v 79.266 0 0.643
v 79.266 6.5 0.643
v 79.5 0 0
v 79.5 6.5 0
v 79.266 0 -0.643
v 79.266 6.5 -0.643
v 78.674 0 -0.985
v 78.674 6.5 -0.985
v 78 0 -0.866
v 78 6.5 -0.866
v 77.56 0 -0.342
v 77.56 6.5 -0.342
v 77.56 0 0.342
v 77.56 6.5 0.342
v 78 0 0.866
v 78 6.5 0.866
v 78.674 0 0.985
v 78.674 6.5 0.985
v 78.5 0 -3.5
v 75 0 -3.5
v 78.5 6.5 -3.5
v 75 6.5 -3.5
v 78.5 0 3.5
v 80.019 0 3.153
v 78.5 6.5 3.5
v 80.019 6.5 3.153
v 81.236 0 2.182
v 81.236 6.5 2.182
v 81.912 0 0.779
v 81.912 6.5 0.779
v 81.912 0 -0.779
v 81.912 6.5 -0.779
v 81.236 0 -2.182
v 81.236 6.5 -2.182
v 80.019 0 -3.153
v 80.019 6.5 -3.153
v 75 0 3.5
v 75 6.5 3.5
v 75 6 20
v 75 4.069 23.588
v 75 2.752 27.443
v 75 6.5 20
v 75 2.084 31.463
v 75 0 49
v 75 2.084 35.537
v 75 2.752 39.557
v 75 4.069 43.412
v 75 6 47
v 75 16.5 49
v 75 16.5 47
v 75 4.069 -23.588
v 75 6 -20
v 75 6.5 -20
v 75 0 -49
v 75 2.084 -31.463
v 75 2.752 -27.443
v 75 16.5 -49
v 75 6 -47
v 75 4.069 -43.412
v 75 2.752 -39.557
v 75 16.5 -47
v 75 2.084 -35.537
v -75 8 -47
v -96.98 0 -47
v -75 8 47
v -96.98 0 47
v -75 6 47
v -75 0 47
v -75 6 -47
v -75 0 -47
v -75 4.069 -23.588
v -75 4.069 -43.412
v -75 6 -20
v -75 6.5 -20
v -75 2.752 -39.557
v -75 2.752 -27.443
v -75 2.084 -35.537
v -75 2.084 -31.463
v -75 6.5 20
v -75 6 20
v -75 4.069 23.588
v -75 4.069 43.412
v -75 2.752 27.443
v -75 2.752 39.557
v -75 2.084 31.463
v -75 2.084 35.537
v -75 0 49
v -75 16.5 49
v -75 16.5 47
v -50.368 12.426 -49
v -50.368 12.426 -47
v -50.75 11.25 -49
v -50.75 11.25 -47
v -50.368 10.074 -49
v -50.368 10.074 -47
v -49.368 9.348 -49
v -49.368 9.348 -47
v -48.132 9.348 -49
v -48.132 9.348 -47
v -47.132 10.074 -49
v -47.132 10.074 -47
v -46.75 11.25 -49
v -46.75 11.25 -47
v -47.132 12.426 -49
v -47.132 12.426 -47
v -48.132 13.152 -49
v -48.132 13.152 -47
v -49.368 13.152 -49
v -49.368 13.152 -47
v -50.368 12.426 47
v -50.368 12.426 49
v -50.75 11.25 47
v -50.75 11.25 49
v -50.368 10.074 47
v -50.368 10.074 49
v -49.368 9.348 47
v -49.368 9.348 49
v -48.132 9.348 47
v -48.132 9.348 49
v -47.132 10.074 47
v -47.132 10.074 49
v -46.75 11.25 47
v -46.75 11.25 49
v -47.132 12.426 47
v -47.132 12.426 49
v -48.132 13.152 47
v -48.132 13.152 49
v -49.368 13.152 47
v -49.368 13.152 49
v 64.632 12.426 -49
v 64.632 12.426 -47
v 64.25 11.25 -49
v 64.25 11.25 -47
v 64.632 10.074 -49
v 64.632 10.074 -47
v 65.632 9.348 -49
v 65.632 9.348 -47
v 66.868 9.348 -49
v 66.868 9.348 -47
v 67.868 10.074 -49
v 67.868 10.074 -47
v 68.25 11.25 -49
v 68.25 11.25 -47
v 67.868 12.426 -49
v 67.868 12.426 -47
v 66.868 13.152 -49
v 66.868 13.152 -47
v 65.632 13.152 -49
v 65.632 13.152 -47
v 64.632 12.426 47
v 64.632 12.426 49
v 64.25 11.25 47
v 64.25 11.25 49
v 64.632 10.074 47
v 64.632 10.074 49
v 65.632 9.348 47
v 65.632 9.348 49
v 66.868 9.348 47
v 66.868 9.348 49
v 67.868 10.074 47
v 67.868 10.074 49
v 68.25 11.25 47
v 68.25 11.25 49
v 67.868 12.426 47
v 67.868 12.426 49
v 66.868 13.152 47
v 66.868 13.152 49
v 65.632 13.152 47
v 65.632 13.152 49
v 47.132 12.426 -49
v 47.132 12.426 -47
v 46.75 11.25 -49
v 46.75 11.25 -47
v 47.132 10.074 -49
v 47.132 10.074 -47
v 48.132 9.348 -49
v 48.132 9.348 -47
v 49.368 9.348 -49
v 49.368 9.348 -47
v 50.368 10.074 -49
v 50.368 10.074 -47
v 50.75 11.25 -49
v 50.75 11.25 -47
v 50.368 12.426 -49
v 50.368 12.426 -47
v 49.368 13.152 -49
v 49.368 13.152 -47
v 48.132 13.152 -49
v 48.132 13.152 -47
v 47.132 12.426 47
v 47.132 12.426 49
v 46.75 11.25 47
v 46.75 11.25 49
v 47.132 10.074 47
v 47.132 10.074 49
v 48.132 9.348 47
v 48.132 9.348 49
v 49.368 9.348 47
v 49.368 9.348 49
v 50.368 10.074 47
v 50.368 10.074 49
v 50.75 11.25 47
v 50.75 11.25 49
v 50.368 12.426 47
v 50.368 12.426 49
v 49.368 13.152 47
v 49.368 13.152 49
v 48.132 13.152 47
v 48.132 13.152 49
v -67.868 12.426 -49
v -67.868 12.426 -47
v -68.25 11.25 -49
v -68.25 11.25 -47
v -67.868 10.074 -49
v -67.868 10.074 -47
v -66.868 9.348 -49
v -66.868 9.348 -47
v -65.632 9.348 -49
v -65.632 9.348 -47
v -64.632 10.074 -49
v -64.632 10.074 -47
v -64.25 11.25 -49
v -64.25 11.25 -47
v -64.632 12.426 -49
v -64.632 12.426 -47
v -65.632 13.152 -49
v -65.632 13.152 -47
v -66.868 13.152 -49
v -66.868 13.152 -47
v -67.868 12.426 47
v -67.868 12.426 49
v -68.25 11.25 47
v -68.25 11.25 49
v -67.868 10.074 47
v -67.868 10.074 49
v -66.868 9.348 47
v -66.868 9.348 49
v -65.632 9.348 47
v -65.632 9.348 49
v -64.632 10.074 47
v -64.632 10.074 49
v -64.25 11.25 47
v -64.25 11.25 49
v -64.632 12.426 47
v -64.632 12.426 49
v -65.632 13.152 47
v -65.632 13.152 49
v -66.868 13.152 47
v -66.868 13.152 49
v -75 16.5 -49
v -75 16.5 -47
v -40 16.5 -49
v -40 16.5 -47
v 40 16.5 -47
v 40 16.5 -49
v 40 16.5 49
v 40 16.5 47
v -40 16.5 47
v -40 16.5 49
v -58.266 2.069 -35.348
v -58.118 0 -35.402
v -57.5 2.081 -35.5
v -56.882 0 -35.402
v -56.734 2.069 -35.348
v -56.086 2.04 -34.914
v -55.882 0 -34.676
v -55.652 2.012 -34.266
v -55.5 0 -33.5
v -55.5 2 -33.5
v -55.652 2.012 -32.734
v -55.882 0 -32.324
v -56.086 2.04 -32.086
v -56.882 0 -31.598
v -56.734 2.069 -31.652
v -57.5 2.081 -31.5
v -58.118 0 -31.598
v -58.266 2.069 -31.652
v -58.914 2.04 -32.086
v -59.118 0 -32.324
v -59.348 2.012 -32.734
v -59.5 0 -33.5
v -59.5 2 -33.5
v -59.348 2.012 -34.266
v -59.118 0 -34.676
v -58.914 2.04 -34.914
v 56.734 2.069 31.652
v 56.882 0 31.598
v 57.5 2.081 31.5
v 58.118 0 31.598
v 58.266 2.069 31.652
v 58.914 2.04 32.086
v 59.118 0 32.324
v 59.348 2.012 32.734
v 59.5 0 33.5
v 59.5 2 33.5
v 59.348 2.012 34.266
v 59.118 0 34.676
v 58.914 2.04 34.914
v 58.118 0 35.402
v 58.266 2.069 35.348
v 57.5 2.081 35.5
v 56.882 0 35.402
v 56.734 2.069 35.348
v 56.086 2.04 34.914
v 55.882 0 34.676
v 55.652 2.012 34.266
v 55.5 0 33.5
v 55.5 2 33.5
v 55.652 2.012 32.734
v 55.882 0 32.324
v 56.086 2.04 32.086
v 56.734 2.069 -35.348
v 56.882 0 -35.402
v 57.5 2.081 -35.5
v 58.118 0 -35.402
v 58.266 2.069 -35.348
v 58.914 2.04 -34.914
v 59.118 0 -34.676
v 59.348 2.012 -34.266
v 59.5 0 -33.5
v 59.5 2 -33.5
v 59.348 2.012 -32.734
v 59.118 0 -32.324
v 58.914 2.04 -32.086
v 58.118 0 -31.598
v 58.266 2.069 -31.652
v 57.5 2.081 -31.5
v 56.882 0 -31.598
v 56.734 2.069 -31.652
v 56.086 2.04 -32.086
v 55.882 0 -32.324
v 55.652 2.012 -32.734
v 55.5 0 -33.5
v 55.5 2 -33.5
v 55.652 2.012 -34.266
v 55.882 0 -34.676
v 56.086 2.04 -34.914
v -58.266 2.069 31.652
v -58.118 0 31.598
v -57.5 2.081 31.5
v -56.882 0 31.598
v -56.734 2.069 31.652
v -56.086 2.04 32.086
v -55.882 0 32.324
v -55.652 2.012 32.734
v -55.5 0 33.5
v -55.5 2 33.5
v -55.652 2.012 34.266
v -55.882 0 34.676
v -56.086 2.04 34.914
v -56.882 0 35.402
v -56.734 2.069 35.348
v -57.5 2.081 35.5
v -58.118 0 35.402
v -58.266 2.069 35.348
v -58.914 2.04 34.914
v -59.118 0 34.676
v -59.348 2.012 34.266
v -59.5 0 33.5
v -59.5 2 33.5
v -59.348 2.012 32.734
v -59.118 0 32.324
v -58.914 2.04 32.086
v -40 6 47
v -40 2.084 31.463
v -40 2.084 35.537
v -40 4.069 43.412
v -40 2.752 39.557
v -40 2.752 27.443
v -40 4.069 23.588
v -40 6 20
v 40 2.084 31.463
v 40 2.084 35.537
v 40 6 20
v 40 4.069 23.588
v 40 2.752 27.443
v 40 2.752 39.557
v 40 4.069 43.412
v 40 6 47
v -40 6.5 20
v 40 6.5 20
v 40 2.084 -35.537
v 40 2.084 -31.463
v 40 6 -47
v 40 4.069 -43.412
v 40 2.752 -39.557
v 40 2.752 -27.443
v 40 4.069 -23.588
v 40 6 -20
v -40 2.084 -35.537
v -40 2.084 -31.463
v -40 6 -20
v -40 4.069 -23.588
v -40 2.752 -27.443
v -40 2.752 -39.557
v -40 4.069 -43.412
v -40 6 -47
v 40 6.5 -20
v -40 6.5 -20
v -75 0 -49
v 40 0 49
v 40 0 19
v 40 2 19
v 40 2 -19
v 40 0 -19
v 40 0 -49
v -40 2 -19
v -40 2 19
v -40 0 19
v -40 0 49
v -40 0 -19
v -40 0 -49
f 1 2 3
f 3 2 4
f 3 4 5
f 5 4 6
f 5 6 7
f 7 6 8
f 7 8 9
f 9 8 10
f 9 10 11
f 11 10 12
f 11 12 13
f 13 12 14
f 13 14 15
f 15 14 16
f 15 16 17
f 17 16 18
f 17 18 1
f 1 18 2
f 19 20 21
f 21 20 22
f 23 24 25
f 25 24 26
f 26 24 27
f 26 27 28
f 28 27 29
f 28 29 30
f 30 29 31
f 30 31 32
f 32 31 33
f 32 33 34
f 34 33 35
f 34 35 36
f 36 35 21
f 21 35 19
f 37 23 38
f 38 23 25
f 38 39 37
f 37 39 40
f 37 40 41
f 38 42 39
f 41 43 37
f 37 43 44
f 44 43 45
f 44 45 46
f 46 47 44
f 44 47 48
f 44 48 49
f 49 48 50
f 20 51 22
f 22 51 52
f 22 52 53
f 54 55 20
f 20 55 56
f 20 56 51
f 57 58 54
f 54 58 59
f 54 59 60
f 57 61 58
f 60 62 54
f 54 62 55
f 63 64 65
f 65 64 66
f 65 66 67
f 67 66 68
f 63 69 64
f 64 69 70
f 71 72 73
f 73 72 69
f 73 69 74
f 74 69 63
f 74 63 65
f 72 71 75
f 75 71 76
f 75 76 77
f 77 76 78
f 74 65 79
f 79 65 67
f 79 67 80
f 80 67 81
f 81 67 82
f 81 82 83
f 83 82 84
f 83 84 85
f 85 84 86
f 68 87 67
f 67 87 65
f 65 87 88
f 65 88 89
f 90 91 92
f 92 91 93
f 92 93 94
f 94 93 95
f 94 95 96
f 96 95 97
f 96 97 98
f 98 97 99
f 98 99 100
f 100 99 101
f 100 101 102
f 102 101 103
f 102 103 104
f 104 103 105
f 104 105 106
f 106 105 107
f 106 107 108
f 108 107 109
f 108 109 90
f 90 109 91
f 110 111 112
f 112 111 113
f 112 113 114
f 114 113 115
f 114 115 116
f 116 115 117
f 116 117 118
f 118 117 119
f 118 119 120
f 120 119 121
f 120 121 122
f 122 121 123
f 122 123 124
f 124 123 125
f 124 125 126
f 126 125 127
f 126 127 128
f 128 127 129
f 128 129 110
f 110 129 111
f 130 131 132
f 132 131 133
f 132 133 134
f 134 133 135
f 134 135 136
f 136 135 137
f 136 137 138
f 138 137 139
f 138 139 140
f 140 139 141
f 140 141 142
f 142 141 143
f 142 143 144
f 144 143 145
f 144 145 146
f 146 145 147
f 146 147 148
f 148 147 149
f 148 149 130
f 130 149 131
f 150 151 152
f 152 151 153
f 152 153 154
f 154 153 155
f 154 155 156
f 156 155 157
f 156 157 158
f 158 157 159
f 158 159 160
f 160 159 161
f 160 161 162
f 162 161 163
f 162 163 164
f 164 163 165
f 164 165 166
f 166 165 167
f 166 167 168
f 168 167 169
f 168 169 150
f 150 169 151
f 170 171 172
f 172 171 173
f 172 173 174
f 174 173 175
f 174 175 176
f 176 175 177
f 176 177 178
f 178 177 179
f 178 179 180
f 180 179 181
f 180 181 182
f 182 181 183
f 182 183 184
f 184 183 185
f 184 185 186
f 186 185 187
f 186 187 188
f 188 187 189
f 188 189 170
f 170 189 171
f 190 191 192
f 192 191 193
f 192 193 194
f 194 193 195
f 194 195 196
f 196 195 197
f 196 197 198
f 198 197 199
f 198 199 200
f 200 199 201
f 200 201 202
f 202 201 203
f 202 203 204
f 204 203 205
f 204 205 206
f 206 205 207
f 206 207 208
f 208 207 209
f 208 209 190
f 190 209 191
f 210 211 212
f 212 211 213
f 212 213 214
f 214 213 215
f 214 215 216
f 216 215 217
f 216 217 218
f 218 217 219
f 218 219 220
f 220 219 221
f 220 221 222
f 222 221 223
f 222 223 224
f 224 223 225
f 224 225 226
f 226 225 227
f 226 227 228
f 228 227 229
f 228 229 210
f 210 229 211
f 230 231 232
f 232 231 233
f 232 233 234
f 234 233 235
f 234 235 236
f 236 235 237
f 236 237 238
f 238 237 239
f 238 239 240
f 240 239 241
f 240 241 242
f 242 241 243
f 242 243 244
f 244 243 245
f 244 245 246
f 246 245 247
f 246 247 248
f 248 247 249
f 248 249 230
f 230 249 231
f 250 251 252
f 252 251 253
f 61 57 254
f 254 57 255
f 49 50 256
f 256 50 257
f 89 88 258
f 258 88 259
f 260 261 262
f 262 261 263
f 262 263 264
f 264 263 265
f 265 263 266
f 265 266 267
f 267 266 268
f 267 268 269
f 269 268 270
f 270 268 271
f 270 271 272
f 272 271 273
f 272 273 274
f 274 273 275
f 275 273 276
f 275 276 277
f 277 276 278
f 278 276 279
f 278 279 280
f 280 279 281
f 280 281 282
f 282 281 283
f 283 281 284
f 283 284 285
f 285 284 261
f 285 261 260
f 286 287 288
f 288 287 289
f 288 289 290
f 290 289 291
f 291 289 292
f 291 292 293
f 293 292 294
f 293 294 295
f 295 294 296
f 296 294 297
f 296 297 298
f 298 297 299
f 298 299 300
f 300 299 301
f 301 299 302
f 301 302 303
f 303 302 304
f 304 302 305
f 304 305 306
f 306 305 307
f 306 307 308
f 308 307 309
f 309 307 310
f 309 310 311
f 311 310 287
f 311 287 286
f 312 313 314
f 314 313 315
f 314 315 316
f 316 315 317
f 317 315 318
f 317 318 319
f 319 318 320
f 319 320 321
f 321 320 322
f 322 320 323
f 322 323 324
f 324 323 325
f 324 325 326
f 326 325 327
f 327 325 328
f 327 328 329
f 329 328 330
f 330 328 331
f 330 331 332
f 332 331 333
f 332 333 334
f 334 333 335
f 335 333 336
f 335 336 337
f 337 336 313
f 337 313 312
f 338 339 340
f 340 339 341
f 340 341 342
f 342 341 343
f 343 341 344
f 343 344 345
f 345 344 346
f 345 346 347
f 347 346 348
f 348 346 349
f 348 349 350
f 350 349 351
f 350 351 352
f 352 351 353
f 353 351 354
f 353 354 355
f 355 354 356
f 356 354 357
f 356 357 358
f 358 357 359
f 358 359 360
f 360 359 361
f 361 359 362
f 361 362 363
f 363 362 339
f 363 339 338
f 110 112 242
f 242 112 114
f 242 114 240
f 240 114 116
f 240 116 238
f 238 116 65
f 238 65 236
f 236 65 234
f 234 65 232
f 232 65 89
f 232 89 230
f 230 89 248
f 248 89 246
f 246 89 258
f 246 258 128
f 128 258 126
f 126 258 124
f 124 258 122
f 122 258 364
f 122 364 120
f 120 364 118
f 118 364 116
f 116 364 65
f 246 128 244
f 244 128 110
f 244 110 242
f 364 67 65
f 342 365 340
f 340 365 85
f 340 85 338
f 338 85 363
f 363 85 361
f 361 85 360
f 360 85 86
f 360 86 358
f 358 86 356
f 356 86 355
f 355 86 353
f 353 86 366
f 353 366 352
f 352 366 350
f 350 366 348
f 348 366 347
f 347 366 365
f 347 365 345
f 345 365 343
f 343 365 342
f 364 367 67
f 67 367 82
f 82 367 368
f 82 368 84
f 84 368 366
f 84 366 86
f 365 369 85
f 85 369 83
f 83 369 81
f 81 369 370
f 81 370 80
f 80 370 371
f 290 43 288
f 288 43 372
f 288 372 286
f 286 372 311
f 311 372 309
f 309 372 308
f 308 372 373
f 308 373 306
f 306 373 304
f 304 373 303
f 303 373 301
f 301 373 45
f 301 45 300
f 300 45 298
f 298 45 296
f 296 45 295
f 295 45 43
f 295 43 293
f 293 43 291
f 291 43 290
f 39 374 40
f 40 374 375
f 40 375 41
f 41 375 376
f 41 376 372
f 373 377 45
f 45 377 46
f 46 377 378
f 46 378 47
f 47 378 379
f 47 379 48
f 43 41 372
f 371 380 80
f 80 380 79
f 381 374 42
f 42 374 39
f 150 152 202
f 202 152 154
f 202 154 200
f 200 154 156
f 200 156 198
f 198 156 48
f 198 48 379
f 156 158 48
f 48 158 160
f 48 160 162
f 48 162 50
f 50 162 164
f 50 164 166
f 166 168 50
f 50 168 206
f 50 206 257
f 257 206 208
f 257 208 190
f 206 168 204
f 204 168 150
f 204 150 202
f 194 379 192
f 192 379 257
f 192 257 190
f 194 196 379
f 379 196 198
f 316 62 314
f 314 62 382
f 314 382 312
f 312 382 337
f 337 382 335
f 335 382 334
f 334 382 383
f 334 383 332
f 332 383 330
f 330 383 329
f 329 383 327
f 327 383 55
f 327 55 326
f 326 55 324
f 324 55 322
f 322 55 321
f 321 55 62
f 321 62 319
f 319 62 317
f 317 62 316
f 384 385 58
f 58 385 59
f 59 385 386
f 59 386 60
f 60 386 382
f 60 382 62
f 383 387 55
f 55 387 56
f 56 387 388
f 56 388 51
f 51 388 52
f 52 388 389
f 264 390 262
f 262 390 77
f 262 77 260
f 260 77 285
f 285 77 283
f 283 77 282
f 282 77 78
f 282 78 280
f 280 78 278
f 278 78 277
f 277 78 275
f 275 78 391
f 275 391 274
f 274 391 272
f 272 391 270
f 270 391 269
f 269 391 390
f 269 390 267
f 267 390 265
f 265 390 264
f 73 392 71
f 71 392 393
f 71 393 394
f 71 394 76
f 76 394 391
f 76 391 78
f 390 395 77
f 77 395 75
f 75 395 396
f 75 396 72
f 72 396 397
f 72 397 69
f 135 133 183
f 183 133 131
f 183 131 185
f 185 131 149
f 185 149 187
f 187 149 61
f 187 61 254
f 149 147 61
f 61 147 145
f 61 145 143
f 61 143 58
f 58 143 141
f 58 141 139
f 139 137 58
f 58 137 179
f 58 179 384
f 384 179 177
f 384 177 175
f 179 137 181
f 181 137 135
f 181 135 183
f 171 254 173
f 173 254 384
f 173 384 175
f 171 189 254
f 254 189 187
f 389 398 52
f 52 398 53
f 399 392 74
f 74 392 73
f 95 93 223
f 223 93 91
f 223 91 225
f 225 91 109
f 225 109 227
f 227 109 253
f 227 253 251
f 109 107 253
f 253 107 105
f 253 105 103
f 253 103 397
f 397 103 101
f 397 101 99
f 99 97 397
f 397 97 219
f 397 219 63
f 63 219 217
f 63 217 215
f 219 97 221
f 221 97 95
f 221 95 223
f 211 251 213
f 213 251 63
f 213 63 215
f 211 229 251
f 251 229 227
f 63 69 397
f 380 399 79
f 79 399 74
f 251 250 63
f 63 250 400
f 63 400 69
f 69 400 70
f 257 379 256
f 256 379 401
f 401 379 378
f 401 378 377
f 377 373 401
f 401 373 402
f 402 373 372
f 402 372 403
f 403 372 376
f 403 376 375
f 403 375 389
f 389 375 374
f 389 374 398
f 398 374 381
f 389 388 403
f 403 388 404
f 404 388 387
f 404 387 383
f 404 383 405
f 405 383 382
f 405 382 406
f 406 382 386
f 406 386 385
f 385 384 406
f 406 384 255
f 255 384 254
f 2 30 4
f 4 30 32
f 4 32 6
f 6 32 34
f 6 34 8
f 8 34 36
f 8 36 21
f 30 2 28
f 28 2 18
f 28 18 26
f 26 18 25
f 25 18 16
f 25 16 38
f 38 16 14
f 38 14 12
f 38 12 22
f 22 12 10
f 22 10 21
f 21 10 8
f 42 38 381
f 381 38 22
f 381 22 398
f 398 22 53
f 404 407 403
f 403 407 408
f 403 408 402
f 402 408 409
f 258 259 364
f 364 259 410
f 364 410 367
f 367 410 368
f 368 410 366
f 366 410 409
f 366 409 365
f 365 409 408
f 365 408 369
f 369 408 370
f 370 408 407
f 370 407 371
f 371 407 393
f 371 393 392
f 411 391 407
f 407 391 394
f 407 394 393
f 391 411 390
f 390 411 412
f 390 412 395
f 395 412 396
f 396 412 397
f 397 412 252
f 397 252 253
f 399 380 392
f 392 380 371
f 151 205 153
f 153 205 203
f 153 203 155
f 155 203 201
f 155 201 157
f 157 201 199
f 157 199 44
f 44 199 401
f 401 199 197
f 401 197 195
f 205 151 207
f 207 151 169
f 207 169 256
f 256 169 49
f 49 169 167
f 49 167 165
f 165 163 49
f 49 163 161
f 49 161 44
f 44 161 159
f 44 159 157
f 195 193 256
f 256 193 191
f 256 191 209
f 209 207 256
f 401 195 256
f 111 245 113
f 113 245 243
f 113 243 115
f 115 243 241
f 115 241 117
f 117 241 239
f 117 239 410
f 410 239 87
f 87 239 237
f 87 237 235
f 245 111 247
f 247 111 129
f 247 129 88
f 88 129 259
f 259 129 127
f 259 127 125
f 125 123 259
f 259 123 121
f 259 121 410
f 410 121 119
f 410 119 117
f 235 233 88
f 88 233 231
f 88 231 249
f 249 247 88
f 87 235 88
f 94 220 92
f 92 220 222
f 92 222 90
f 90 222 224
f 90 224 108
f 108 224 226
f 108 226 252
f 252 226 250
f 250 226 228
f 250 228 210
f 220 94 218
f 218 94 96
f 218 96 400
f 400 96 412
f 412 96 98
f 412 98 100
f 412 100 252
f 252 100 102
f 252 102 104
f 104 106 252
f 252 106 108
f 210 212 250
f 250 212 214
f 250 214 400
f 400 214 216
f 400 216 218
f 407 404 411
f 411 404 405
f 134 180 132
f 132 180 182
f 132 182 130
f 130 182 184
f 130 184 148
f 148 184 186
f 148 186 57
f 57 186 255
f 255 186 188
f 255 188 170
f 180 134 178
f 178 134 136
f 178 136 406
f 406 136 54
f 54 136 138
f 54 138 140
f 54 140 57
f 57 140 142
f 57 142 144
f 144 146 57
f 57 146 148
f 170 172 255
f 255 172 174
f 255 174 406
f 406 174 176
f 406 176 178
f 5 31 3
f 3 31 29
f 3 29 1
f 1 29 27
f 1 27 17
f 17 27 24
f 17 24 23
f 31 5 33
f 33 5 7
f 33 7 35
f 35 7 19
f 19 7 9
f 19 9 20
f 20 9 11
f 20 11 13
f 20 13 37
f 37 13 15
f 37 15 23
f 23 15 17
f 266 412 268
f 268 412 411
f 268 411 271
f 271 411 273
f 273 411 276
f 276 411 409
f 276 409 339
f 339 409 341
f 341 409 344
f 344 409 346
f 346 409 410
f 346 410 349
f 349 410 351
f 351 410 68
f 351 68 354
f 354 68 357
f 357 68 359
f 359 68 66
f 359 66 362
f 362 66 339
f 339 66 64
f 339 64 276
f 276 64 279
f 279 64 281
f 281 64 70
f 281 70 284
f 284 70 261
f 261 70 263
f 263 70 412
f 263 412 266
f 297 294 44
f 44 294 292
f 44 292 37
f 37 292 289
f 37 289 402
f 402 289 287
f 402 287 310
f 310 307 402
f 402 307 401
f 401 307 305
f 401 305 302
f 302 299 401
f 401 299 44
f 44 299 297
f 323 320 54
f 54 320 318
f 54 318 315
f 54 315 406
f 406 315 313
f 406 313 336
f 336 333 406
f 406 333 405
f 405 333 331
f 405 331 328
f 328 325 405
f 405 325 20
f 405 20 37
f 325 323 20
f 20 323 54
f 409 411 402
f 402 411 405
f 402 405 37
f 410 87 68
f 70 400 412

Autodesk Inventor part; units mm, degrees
ref_plane "YZ Plane" through (0, 0, 0) normal (1, 0, 0) x (0, 1, 0)
ref_plane "XZ Plane" through (0, 0, 0) normal (0, 1, 0) x (-1, 0, 0)
ref_plane "XY Plane" through (0, 0, 0) normal (0, 0, 1) x (1, 0, 0)
sketch "Sketch1" plane through (0, 0, 0) normal (0, 1, 0) x (-1, 0, 0)
  line L0 (75, -49) -> (75, 49)
  line L1 (-75, 49) -> (-75, -49)
  line L2 (-75, -49) -> (75, 49) construction
  line L3 (75, -49) -> (-75, 49) construction
  line L4 (-40, -49) -> (-40, -19)
  line L5 (-40, -19) -> (40, -19)
  line L6 (40, -19) -> (40, -49)
  line L7 (-40, 49) -> (-40, 19)
  line L8 (-40, 19) -> (40, 19)
  line L9 (40, 19) -> (40, 49)
  line L10 (75, 49) -> (40, 49)
  line L11 (-40, 49) -> (-75, 49)
  line L12 (-75, -49) -> (-40, -49)
  line L13 (40, -49) -> (75, -49)
  point P0 (0, 0)
  dimension "d1" = 98
  dimension "d3" = 35
  dimension "d4" = 35
  dimension "d5" = 80
  dimension "d6" = 150
  dimension "d7" = 30
  dimension "d8" = 98
  dimension "d9" = 30
  dimension "d10" = 80
  dimension "d16" = 30
extrude "Main Body Extrusion" add sketch "Sketch1" along normal blind 6.5
sketch "Sketch2" plane through (-40, 0, 19) normal (0, 0, 1) x (1, 0, 0)
  line L0 (0, 0) -> (0, 6.5) projected
  line L1 (80, 0) -> (80, 6.5) projected
  line L2 (0, 6.5) -> (80, 6.5)
  line L3 (80, 6.5) -> (80, 2)
  line L4 (80, 2) -> (0, 2)
  line L5 (0, 2) -> (0, 6.5)
  point P0 (40, 0)
  dimension "d13" = 4.5
extrude "Center Cut" cut sketch "Sketch2" against normal up to next
sketch "Arc Sketch" plane through (75, 0, 49) normal (1, 0, 0) x (0, 0, -1)
  line L0 (49, 14.062) -> (49, -15.1255)
  line L1 (2, 11.8168) -> (2, -9.2171)
  line L2 (29, 10.0443) -> (29, -9.9261)
  line L3 (0, 0) -> (0, 6.5) projected
  line L4 (-6.6571, 2) -> (113.047, 2)
  line L5 (98, 0) -> (0, 0) projected
  line L6 (-13.629, 6) -> (113.047, 6)
  line L7 (15.5, 15.9527) -> (15.5, -15.1255)
  arc A0 (2, 6) -> (29, 6) centre (15.5, 26.7813) ccw
  line L8 (0, 6.5) -> (98, 6.5) projected
  line L9 (2, 6.5) -> (2, 6)
  line L10 (2, 6.5) -> (29, 6.5)
  line L11 (29, 6) -> (29, 6.5)
  arc A1 (69, 6) -> (96, 6) centre (82.5, 26.7813) ccw
  line L12 (96, 6.5) -> (96, 6)
  line L13 (96, 6.5) -> (69, 6.5)
  line L14 (69, 6) -> (69, 6.5)
  point P0 (49, 0)
  dimension "d17" = 2
  dimension "d18" = 2
  dimension "d19" = 4
  dimension "d20" = 27
  dimension "d21" = 13.5
  dimension "d24" = 15.5
extrude "Arc Cuts" cut sketch "Arc Sketch" against normal through all contours L2 L6 L7 L8 | L8 L12 L6 L14 | A0 L7 L6 | L6 A1 | L7 L6 L1 L8 | L7 A0 L6
sketch "Sketch4" plane through (0, 0, 0) normal (0, -1, 0) x (1, 0, 0)
  circle A0 centre (57.5, 33.5) radius 2
  line L0 (75, 49) -> (40, 49) projected
  line L1 (75, -49) -> (75, 49) projected
  line L2 (40, 49) -> (40, 19) projected
  line L3 (92.3487, 0) -> (-109.5218, 0)
  line L4 (0, -62.4236) -> (0, 64.0069)
  circle A1 centre (57.5, -33.5) radius 2
  circle A2 centre (-57.5, 33.5) radius 2
  circle A3 centre (-57.5, -33.5) radius 2
  line L5 (40, 19) -> (-40, 19) projected
  point P0 (0, 0)
  dimension "d25" = 4
  dimension "d26" = 15.5
  dimension "d27" = 17.5
  dimension "d28" = 35
  dimension "d41" = 14.5
  dimension "d42" = 17.5
extrude "Arc Holes Cut" cut sketch "Sketch4" against normal up to next contours A0 | A1 | A2 | A3
sketch "Sketch5" plane through (0, 6.5, 0) normal (0, 1, 0) x (1, 0, 0)
  line L0 (75, 47) -> (75, 49) projected
  line L1 (40, 49) -> (75, 49) projected
  line L2 (75, 47) -> (40, 47)
  line L3 (40, 47) -> (40, 49)
  line L4 (40, 49) -> (75, 49)
  line L5 (75, 49) -> (75, 47)
  line L6 (88.7308, 0) -> (-106.3834, 0)
  line L7 (0, 126.6929) -> (0, -73.8866)
  line L8 (75, -47) -> (75, -49)
  line L9 (40, -49) -> (75, -49)
  line L10 (75, -47) -> (40, -47)
  line L11 (40, -47) -> (40, -49)
  line L12 (-75, 47) -> (-75, 49)
  line L13 (-40, 49) -> (-75, 49)
  line L14 (-75, 47) -> (-40, 47)
  line L15 (-40, 47) -> (-40, 49)
  line L16 (-75, -47) -> (-40, -47)
  line L17 (-40, -49) -> (-75, -49)
  line L18 (-75, -47) -> (-75, -49)
  line L19 (-40, -47) -> (-40, -49)
  point P0 (0, 0)
extrude "Side Extrusions" add sketch "Sketch5" along normal blind 10
sketch "Side Holes Sketch" plane through (-40, 0, -49) normal (0, 0, -1) x (-1, 0, 0)
  circle A0 centre (-106.25, 11.25) radius 2
  line L0 (-115, 6) -> (-80, 6) projected
  line L1 (-80, 0) -> (-115, 0) projected
  line L2 (-115, 16.5) -> (-80, 16.5) projected
  line L3 (-97.5, 0) -> (-97.5, 22.5291)
  line L4 (-115, 0) -> (-115, 16.5) projected
  circle A1 centre (-88.75, 11.25) radius 2
  line L5 (-40, 14.9188) -> (-40, -21.0119)
  circle A2 centre (26.25, 11.25) radius 2
  circle A3 centre (8.75, 11.25) radius 2
  point P0 (-40, 0)
  dimension "d33" = 6
  dimension "d34" = 10.5
  dimension "d35" = 5.25
  dimension "d36" = 5.25
  dimension "d37" = 35
  dimension "d38" = 8.75
  dimension "d56" = 4
extrude "Side Holes Cut" cut sketch "Side Holes Sketch" against normal through all contours A0 | A1 | A2 | A3
sketch "Ramp Width Sketch" plane through (-75, 0, -49) normal (-1, 0, 0) x (0, 0, 1)
  line L0 (96, 6) -> (96, 16.5) projected
  line L1 (2, 0) -> (96, 0)
  line L2 (96, 0) -> (96, 8)
  line L3 (96, 8) -> (2, 8)
  line L4 (2, 8) -> (2, 0)
  point P0 (49, 0)
  dimension "d43" = 8
  dimension "d44" = 94
extrude "Ramp Width Extrusion" add sketch "Ramp Width Sketch" along normal blind 21.9798
sketch "Ramp Cut Sketch" plane through (-75, 0, 47) normal (0, 0, 1) x (1, 0, 0)
  line L0 (0, 16.5) -> (0, 8) projected
  line L1 (-21.9798, 0) -> (-21.9798, 8) projected
  line L2 (0, 8) -> (-21.9798, 0)
  line L3 (0, 8) -> (-21.9798, 8) projected
  line L4 (-21.9798, 8) -> (0, 8)
  point P0 (75, 0)
extrude "Ramp Cut" cut sketch "Ramp Cut Sketch" against normal through all
sketch "Sketch12" plane through (0, 0, 0) normal (0, -1, 0) x (1, 0, 0)
  line L0 (74.2886, 0) -> (75, 0)
  line L1 (75, 49) -> (40, 49) projected
  line L2 (40, -49) -> (75, -49) projected
  line L3 (75, -49) -> (75, 49) projected
  line L4 (75, 3.5) -> (78.5, 3.5)
  line L5 (78.5, -3.5) -> (75, -3.5)
  line L6 (75, -3.5) -> (75, 3.5)
  arc A0 (78.5, -3.5) -> (78.5, 3.5) centre (78.5, 0) ccw
  point P0 (0, 0)
  dimension "d49" = 49
  dimension "d50" = 49
  dimension "d51" = 3.5
  dimension "d52" = 3.5
extrude "Extrusion9" add sketch "Sketch12" against normal blind 6.5
sketch "Sketch13" plane through (0, 6.5, 0) normal (0, 1, 0) x (1, 0, 0)
  arc A0 (78.5, -3.5) -> (78.5, 3.5) centre (78.5, 0) ccw projected
  circle A1 centre (78.5, 0) radius 1
  point P0 (0, 0)
  dimension "d57" = 2
extrude "Extrusion10" cut sketch "Sketch13" against normal through all
properties part number "TapeMeasureBracketBottom"
